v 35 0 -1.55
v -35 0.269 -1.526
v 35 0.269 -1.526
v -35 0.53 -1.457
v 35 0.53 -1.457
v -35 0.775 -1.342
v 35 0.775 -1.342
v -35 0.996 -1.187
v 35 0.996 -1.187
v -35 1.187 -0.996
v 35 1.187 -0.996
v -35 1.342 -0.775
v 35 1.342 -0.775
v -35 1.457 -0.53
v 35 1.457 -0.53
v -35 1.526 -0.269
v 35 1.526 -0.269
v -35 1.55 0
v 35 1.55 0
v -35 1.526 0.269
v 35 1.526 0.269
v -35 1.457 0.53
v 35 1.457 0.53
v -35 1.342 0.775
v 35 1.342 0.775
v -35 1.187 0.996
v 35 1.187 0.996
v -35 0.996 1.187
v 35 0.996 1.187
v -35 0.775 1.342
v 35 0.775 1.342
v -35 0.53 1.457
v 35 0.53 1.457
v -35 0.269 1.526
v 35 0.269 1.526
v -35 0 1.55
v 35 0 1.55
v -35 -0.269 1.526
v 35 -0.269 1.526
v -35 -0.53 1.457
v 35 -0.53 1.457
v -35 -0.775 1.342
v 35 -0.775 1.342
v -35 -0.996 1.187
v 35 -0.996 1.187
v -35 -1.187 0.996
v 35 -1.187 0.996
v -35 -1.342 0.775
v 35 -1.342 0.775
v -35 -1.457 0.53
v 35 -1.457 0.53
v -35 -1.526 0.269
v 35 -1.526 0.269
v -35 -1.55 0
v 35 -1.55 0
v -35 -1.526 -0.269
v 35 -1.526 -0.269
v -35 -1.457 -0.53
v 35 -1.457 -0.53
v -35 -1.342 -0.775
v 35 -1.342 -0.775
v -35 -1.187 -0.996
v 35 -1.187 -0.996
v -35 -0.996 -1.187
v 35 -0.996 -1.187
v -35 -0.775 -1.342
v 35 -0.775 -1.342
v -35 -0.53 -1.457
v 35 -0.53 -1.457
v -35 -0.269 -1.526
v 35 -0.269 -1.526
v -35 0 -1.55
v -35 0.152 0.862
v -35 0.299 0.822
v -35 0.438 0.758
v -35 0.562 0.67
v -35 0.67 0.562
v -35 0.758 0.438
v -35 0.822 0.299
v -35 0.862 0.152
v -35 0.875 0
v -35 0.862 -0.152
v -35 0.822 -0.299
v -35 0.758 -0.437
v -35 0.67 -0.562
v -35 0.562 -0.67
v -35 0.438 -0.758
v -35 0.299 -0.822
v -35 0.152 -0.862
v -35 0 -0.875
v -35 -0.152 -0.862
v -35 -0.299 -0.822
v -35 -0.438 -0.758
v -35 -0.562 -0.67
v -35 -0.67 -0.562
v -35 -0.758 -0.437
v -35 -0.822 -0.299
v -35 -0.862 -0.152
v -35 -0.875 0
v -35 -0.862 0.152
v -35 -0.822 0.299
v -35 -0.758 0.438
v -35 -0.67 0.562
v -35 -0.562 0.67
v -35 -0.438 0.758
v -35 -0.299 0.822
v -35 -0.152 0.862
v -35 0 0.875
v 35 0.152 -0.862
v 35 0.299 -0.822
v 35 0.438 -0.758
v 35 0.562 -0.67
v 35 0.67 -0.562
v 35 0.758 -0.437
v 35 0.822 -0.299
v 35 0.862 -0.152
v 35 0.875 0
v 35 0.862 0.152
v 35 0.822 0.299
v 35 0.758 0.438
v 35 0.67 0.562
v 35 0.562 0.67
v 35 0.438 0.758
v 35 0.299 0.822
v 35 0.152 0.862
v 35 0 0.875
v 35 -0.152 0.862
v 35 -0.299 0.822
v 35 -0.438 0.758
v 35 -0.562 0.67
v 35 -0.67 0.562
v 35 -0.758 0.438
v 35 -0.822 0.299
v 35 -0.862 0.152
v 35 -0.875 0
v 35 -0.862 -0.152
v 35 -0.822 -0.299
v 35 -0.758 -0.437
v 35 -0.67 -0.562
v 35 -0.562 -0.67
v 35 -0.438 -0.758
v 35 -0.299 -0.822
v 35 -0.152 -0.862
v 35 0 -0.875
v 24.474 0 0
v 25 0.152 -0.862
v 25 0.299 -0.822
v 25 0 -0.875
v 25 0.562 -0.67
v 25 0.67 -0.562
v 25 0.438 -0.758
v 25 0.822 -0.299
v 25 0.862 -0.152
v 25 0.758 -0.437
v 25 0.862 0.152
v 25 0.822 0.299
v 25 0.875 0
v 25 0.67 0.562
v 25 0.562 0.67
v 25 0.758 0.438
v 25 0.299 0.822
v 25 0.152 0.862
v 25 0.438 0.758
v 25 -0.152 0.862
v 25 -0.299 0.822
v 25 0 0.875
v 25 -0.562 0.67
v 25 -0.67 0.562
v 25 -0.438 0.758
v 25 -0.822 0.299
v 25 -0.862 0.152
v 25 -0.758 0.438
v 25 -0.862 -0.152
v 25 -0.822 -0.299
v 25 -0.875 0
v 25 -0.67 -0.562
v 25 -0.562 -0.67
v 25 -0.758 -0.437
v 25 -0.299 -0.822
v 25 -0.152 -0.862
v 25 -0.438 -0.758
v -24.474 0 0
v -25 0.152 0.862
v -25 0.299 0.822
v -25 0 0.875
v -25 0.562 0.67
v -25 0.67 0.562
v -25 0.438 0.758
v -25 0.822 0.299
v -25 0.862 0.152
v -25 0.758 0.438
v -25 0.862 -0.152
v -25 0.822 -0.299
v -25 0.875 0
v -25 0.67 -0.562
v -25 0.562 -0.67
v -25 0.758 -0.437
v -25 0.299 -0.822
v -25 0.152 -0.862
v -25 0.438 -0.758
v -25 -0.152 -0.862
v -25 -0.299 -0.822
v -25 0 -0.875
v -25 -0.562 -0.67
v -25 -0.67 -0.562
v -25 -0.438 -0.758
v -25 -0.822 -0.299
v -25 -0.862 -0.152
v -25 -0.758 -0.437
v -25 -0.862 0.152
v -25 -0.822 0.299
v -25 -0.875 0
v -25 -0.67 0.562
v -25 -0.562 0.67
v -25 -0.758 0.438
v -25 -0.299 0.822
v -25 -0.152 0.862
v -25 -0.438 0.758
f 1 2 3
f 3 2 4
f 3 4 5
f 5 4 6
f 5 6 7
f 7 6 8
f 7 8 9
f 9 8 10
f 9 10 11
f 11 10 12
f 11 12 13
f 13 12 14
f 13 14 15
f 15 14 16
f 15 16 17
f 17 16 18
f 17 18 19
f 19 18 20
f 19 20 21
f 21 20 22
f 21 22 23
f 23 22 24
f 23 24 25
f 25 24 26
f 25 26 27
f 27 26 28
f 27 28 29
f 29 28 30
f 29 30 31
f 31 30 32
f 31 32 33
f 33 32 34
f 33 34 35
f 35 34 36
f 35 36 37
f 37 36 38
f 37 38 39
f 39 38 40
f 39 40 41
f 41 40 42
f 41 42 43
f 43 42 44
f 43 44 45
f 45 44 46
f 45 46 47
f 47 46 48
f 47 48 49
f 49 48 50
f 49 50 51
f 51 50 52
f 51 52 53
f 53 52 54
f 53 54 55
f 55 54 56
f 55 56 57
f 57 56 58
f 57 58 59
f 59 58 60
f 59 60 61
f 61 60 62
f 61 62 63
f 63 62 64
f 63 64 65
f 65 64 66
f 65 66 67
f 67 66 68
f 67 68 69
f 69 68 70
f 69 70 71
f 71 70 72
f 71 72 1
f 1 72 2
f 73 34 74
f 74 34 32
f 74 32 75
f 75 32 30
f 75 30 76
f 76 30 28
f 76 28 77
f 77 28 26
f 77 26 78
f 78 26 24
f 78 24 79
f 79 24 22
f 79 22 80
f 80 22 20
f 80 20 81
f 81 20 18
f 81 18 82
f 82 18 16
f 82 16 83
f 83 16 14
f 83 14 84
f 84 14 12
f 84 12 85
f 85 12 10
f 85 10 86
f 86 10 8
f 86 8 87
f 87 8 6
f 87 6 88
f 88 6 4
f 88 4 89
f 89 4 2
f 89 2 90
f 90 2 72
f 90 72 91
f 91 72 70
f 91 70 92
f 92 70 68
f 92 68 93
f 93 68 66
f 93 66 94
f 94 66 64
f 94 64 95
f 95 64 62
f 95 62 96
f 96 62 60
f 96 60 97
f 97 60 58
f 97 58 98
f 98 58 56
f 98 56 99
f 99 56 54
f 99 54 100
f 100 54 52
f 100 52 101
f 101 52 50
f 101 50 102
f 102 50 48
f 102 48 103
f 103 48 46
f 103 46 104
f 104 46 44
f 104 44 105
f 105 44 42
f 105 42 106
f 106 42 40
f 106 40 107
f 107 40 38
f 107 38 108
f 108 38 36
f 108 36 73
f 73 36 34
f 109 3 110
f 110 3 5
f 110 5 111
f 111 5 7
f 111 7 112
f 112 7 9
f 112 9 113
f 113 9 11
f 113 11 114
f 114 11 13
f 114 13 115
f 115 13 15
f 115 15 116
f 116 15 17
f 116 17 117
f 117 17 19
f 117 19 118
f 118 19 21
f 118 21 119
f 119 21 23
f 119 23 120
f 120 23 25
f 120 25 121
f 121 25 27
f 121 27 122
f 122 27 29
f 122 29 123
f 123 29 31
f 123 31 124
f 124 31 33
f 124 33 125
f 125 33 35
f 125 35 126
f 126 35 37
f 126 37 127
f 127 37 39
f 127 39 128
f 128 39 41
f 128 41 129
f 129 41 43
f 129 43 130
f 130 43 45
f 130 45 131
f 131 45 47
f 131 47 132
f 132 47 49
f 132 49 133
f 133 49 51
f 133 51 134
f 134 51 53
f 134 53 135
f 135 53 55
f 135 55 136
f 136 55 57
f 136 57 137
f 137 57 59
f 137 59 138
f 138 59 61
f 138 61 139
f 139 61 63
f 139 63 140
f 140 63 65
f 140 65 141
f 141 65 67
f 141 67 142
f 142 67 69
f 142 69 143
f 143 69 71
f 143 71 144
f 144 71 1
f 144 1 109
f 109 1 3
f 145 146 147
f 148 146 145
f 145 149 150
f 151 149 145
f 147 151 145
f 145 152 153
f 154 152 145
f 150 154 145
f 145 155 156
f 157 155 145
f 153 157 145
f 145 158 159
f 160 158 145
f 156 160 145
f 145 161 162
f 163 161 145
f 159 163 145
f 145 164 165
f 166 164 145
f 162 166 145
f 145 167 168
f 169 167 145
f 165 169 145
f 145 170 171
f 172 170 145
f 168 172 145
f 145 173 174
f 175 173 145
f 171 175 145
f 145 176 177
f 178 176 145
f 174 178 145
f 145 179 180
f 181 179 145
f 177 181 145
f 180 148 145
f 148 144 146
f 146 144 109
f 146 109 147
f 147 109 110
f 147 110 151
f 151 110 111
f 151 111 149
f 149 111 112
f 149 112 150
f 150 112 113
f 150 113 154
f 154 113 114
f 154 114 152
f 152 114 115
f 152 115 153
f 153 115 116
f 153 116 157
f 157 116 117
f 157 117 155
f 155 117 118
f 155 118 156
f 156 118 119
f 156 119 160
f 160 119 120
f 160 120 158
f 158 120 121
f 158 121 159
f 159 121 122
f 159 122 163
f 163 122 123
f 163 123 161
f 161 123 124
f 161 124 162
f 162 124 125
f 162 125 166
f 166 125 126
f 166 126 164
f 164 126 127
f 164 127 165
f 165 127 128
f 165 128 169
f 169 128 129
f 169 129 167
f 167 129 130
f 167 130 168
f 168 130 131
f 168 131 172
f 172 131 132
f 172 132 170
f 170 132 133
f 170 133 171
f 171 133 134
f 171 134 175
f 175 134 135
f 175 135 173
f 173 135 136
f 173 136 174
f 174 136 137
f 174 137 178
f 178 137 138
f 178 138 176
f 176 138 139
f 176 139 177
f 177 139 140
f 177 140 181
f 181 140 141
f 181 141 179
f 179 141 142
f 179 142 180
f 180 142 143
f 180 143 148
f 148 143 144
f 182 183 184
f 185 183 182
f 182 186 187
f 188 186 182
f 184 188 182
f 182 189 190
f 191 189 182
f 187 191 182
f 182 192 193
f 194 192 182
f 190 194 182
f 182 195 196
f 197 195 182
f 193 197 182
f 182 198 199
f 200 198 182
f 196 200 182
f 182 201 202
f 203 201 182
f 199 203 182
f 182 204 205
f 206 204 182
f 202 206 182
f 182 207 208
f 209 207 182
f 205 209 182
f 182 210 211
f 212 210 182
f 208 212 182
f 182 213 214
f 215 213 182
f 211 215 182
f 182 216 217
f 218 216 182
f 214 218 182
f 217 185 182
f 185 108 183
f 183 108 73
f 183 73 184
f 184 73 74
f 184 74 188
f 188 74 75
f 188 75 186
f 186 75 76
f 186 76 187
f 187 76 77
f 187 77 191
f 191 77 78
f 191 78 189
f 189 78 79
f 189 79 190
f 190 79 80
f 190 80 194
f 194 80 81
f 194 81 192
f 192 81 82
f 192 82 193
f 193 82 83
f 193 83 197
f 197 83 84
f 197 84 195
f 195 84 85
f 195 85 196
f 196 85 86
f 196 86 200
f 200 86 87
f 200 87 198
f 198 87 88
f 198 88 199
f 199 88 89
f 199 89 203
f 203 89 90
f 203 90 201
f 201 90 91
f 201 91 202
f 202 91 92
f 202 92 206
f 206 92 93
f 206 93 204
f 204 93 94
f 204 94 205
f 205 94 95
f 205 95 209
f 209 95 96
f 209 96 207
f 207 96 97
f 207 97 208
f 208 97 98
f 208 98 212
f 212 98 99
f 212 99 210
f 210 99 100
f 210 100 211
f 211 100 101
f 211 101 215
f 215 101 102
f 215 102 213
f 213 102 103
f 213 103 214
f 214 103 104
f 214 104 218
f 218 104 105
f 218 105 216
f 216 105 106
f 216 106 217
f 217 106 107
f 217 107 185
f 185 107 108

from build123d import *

# Parameters (mm, degrees)
BOSS_EXTRUDE1_DEPTH      = 35
BOSS_EXTRUDE1_DEPTH_BACK = 35
SKETCH1_R                = 1.55


with BuildPart() as part:
    # Sketch1 → Boss-Extrude1 (new, two sides: drawn at the far end of the back side and taken through both)
    with BuildSketch(Plane(origin=(0, 0, 0), x_dir=(0, 0, -1), z_dir=(1, 0, 0)).offset(-BOSS_EXTRUDE1_DEPTH_BACK)):
        Circle(SKETCH1_R)
    extrude(amount=BOSS_EXTRUDE1_DEPTH + BOSS_EXTRUDE1_DEPTH_BACK)

    # Sketch3 → M2x0.25 Tapped Hole1 (revolve, cut)
    with BuildSketch(Plane(origin=(35, 0, 0), x_dir=(0, 0, -1), z_dir=(0, 1, 0))):
        Polygon((0, 0), (0, 10.525753042), (0.875, 10), (0.875, 0), align=None)
    m2x0_25_tapped_hole1 = revolve(axis=Axis((41.35, 0, 0), (-1, 0, 0)), mode=Mode.SUBTRACT)

    # Mirror1: M2x0.25 Tapped Hole1 across plane
    add(m2x0_25_tapped_hole1.mirror(Plane(origin=(0, 0, 0), x_dir=(0, 0, 1), z_dir=(1, 0, 0))), mode=Mode.SUBTRACT)


solid = part.part
